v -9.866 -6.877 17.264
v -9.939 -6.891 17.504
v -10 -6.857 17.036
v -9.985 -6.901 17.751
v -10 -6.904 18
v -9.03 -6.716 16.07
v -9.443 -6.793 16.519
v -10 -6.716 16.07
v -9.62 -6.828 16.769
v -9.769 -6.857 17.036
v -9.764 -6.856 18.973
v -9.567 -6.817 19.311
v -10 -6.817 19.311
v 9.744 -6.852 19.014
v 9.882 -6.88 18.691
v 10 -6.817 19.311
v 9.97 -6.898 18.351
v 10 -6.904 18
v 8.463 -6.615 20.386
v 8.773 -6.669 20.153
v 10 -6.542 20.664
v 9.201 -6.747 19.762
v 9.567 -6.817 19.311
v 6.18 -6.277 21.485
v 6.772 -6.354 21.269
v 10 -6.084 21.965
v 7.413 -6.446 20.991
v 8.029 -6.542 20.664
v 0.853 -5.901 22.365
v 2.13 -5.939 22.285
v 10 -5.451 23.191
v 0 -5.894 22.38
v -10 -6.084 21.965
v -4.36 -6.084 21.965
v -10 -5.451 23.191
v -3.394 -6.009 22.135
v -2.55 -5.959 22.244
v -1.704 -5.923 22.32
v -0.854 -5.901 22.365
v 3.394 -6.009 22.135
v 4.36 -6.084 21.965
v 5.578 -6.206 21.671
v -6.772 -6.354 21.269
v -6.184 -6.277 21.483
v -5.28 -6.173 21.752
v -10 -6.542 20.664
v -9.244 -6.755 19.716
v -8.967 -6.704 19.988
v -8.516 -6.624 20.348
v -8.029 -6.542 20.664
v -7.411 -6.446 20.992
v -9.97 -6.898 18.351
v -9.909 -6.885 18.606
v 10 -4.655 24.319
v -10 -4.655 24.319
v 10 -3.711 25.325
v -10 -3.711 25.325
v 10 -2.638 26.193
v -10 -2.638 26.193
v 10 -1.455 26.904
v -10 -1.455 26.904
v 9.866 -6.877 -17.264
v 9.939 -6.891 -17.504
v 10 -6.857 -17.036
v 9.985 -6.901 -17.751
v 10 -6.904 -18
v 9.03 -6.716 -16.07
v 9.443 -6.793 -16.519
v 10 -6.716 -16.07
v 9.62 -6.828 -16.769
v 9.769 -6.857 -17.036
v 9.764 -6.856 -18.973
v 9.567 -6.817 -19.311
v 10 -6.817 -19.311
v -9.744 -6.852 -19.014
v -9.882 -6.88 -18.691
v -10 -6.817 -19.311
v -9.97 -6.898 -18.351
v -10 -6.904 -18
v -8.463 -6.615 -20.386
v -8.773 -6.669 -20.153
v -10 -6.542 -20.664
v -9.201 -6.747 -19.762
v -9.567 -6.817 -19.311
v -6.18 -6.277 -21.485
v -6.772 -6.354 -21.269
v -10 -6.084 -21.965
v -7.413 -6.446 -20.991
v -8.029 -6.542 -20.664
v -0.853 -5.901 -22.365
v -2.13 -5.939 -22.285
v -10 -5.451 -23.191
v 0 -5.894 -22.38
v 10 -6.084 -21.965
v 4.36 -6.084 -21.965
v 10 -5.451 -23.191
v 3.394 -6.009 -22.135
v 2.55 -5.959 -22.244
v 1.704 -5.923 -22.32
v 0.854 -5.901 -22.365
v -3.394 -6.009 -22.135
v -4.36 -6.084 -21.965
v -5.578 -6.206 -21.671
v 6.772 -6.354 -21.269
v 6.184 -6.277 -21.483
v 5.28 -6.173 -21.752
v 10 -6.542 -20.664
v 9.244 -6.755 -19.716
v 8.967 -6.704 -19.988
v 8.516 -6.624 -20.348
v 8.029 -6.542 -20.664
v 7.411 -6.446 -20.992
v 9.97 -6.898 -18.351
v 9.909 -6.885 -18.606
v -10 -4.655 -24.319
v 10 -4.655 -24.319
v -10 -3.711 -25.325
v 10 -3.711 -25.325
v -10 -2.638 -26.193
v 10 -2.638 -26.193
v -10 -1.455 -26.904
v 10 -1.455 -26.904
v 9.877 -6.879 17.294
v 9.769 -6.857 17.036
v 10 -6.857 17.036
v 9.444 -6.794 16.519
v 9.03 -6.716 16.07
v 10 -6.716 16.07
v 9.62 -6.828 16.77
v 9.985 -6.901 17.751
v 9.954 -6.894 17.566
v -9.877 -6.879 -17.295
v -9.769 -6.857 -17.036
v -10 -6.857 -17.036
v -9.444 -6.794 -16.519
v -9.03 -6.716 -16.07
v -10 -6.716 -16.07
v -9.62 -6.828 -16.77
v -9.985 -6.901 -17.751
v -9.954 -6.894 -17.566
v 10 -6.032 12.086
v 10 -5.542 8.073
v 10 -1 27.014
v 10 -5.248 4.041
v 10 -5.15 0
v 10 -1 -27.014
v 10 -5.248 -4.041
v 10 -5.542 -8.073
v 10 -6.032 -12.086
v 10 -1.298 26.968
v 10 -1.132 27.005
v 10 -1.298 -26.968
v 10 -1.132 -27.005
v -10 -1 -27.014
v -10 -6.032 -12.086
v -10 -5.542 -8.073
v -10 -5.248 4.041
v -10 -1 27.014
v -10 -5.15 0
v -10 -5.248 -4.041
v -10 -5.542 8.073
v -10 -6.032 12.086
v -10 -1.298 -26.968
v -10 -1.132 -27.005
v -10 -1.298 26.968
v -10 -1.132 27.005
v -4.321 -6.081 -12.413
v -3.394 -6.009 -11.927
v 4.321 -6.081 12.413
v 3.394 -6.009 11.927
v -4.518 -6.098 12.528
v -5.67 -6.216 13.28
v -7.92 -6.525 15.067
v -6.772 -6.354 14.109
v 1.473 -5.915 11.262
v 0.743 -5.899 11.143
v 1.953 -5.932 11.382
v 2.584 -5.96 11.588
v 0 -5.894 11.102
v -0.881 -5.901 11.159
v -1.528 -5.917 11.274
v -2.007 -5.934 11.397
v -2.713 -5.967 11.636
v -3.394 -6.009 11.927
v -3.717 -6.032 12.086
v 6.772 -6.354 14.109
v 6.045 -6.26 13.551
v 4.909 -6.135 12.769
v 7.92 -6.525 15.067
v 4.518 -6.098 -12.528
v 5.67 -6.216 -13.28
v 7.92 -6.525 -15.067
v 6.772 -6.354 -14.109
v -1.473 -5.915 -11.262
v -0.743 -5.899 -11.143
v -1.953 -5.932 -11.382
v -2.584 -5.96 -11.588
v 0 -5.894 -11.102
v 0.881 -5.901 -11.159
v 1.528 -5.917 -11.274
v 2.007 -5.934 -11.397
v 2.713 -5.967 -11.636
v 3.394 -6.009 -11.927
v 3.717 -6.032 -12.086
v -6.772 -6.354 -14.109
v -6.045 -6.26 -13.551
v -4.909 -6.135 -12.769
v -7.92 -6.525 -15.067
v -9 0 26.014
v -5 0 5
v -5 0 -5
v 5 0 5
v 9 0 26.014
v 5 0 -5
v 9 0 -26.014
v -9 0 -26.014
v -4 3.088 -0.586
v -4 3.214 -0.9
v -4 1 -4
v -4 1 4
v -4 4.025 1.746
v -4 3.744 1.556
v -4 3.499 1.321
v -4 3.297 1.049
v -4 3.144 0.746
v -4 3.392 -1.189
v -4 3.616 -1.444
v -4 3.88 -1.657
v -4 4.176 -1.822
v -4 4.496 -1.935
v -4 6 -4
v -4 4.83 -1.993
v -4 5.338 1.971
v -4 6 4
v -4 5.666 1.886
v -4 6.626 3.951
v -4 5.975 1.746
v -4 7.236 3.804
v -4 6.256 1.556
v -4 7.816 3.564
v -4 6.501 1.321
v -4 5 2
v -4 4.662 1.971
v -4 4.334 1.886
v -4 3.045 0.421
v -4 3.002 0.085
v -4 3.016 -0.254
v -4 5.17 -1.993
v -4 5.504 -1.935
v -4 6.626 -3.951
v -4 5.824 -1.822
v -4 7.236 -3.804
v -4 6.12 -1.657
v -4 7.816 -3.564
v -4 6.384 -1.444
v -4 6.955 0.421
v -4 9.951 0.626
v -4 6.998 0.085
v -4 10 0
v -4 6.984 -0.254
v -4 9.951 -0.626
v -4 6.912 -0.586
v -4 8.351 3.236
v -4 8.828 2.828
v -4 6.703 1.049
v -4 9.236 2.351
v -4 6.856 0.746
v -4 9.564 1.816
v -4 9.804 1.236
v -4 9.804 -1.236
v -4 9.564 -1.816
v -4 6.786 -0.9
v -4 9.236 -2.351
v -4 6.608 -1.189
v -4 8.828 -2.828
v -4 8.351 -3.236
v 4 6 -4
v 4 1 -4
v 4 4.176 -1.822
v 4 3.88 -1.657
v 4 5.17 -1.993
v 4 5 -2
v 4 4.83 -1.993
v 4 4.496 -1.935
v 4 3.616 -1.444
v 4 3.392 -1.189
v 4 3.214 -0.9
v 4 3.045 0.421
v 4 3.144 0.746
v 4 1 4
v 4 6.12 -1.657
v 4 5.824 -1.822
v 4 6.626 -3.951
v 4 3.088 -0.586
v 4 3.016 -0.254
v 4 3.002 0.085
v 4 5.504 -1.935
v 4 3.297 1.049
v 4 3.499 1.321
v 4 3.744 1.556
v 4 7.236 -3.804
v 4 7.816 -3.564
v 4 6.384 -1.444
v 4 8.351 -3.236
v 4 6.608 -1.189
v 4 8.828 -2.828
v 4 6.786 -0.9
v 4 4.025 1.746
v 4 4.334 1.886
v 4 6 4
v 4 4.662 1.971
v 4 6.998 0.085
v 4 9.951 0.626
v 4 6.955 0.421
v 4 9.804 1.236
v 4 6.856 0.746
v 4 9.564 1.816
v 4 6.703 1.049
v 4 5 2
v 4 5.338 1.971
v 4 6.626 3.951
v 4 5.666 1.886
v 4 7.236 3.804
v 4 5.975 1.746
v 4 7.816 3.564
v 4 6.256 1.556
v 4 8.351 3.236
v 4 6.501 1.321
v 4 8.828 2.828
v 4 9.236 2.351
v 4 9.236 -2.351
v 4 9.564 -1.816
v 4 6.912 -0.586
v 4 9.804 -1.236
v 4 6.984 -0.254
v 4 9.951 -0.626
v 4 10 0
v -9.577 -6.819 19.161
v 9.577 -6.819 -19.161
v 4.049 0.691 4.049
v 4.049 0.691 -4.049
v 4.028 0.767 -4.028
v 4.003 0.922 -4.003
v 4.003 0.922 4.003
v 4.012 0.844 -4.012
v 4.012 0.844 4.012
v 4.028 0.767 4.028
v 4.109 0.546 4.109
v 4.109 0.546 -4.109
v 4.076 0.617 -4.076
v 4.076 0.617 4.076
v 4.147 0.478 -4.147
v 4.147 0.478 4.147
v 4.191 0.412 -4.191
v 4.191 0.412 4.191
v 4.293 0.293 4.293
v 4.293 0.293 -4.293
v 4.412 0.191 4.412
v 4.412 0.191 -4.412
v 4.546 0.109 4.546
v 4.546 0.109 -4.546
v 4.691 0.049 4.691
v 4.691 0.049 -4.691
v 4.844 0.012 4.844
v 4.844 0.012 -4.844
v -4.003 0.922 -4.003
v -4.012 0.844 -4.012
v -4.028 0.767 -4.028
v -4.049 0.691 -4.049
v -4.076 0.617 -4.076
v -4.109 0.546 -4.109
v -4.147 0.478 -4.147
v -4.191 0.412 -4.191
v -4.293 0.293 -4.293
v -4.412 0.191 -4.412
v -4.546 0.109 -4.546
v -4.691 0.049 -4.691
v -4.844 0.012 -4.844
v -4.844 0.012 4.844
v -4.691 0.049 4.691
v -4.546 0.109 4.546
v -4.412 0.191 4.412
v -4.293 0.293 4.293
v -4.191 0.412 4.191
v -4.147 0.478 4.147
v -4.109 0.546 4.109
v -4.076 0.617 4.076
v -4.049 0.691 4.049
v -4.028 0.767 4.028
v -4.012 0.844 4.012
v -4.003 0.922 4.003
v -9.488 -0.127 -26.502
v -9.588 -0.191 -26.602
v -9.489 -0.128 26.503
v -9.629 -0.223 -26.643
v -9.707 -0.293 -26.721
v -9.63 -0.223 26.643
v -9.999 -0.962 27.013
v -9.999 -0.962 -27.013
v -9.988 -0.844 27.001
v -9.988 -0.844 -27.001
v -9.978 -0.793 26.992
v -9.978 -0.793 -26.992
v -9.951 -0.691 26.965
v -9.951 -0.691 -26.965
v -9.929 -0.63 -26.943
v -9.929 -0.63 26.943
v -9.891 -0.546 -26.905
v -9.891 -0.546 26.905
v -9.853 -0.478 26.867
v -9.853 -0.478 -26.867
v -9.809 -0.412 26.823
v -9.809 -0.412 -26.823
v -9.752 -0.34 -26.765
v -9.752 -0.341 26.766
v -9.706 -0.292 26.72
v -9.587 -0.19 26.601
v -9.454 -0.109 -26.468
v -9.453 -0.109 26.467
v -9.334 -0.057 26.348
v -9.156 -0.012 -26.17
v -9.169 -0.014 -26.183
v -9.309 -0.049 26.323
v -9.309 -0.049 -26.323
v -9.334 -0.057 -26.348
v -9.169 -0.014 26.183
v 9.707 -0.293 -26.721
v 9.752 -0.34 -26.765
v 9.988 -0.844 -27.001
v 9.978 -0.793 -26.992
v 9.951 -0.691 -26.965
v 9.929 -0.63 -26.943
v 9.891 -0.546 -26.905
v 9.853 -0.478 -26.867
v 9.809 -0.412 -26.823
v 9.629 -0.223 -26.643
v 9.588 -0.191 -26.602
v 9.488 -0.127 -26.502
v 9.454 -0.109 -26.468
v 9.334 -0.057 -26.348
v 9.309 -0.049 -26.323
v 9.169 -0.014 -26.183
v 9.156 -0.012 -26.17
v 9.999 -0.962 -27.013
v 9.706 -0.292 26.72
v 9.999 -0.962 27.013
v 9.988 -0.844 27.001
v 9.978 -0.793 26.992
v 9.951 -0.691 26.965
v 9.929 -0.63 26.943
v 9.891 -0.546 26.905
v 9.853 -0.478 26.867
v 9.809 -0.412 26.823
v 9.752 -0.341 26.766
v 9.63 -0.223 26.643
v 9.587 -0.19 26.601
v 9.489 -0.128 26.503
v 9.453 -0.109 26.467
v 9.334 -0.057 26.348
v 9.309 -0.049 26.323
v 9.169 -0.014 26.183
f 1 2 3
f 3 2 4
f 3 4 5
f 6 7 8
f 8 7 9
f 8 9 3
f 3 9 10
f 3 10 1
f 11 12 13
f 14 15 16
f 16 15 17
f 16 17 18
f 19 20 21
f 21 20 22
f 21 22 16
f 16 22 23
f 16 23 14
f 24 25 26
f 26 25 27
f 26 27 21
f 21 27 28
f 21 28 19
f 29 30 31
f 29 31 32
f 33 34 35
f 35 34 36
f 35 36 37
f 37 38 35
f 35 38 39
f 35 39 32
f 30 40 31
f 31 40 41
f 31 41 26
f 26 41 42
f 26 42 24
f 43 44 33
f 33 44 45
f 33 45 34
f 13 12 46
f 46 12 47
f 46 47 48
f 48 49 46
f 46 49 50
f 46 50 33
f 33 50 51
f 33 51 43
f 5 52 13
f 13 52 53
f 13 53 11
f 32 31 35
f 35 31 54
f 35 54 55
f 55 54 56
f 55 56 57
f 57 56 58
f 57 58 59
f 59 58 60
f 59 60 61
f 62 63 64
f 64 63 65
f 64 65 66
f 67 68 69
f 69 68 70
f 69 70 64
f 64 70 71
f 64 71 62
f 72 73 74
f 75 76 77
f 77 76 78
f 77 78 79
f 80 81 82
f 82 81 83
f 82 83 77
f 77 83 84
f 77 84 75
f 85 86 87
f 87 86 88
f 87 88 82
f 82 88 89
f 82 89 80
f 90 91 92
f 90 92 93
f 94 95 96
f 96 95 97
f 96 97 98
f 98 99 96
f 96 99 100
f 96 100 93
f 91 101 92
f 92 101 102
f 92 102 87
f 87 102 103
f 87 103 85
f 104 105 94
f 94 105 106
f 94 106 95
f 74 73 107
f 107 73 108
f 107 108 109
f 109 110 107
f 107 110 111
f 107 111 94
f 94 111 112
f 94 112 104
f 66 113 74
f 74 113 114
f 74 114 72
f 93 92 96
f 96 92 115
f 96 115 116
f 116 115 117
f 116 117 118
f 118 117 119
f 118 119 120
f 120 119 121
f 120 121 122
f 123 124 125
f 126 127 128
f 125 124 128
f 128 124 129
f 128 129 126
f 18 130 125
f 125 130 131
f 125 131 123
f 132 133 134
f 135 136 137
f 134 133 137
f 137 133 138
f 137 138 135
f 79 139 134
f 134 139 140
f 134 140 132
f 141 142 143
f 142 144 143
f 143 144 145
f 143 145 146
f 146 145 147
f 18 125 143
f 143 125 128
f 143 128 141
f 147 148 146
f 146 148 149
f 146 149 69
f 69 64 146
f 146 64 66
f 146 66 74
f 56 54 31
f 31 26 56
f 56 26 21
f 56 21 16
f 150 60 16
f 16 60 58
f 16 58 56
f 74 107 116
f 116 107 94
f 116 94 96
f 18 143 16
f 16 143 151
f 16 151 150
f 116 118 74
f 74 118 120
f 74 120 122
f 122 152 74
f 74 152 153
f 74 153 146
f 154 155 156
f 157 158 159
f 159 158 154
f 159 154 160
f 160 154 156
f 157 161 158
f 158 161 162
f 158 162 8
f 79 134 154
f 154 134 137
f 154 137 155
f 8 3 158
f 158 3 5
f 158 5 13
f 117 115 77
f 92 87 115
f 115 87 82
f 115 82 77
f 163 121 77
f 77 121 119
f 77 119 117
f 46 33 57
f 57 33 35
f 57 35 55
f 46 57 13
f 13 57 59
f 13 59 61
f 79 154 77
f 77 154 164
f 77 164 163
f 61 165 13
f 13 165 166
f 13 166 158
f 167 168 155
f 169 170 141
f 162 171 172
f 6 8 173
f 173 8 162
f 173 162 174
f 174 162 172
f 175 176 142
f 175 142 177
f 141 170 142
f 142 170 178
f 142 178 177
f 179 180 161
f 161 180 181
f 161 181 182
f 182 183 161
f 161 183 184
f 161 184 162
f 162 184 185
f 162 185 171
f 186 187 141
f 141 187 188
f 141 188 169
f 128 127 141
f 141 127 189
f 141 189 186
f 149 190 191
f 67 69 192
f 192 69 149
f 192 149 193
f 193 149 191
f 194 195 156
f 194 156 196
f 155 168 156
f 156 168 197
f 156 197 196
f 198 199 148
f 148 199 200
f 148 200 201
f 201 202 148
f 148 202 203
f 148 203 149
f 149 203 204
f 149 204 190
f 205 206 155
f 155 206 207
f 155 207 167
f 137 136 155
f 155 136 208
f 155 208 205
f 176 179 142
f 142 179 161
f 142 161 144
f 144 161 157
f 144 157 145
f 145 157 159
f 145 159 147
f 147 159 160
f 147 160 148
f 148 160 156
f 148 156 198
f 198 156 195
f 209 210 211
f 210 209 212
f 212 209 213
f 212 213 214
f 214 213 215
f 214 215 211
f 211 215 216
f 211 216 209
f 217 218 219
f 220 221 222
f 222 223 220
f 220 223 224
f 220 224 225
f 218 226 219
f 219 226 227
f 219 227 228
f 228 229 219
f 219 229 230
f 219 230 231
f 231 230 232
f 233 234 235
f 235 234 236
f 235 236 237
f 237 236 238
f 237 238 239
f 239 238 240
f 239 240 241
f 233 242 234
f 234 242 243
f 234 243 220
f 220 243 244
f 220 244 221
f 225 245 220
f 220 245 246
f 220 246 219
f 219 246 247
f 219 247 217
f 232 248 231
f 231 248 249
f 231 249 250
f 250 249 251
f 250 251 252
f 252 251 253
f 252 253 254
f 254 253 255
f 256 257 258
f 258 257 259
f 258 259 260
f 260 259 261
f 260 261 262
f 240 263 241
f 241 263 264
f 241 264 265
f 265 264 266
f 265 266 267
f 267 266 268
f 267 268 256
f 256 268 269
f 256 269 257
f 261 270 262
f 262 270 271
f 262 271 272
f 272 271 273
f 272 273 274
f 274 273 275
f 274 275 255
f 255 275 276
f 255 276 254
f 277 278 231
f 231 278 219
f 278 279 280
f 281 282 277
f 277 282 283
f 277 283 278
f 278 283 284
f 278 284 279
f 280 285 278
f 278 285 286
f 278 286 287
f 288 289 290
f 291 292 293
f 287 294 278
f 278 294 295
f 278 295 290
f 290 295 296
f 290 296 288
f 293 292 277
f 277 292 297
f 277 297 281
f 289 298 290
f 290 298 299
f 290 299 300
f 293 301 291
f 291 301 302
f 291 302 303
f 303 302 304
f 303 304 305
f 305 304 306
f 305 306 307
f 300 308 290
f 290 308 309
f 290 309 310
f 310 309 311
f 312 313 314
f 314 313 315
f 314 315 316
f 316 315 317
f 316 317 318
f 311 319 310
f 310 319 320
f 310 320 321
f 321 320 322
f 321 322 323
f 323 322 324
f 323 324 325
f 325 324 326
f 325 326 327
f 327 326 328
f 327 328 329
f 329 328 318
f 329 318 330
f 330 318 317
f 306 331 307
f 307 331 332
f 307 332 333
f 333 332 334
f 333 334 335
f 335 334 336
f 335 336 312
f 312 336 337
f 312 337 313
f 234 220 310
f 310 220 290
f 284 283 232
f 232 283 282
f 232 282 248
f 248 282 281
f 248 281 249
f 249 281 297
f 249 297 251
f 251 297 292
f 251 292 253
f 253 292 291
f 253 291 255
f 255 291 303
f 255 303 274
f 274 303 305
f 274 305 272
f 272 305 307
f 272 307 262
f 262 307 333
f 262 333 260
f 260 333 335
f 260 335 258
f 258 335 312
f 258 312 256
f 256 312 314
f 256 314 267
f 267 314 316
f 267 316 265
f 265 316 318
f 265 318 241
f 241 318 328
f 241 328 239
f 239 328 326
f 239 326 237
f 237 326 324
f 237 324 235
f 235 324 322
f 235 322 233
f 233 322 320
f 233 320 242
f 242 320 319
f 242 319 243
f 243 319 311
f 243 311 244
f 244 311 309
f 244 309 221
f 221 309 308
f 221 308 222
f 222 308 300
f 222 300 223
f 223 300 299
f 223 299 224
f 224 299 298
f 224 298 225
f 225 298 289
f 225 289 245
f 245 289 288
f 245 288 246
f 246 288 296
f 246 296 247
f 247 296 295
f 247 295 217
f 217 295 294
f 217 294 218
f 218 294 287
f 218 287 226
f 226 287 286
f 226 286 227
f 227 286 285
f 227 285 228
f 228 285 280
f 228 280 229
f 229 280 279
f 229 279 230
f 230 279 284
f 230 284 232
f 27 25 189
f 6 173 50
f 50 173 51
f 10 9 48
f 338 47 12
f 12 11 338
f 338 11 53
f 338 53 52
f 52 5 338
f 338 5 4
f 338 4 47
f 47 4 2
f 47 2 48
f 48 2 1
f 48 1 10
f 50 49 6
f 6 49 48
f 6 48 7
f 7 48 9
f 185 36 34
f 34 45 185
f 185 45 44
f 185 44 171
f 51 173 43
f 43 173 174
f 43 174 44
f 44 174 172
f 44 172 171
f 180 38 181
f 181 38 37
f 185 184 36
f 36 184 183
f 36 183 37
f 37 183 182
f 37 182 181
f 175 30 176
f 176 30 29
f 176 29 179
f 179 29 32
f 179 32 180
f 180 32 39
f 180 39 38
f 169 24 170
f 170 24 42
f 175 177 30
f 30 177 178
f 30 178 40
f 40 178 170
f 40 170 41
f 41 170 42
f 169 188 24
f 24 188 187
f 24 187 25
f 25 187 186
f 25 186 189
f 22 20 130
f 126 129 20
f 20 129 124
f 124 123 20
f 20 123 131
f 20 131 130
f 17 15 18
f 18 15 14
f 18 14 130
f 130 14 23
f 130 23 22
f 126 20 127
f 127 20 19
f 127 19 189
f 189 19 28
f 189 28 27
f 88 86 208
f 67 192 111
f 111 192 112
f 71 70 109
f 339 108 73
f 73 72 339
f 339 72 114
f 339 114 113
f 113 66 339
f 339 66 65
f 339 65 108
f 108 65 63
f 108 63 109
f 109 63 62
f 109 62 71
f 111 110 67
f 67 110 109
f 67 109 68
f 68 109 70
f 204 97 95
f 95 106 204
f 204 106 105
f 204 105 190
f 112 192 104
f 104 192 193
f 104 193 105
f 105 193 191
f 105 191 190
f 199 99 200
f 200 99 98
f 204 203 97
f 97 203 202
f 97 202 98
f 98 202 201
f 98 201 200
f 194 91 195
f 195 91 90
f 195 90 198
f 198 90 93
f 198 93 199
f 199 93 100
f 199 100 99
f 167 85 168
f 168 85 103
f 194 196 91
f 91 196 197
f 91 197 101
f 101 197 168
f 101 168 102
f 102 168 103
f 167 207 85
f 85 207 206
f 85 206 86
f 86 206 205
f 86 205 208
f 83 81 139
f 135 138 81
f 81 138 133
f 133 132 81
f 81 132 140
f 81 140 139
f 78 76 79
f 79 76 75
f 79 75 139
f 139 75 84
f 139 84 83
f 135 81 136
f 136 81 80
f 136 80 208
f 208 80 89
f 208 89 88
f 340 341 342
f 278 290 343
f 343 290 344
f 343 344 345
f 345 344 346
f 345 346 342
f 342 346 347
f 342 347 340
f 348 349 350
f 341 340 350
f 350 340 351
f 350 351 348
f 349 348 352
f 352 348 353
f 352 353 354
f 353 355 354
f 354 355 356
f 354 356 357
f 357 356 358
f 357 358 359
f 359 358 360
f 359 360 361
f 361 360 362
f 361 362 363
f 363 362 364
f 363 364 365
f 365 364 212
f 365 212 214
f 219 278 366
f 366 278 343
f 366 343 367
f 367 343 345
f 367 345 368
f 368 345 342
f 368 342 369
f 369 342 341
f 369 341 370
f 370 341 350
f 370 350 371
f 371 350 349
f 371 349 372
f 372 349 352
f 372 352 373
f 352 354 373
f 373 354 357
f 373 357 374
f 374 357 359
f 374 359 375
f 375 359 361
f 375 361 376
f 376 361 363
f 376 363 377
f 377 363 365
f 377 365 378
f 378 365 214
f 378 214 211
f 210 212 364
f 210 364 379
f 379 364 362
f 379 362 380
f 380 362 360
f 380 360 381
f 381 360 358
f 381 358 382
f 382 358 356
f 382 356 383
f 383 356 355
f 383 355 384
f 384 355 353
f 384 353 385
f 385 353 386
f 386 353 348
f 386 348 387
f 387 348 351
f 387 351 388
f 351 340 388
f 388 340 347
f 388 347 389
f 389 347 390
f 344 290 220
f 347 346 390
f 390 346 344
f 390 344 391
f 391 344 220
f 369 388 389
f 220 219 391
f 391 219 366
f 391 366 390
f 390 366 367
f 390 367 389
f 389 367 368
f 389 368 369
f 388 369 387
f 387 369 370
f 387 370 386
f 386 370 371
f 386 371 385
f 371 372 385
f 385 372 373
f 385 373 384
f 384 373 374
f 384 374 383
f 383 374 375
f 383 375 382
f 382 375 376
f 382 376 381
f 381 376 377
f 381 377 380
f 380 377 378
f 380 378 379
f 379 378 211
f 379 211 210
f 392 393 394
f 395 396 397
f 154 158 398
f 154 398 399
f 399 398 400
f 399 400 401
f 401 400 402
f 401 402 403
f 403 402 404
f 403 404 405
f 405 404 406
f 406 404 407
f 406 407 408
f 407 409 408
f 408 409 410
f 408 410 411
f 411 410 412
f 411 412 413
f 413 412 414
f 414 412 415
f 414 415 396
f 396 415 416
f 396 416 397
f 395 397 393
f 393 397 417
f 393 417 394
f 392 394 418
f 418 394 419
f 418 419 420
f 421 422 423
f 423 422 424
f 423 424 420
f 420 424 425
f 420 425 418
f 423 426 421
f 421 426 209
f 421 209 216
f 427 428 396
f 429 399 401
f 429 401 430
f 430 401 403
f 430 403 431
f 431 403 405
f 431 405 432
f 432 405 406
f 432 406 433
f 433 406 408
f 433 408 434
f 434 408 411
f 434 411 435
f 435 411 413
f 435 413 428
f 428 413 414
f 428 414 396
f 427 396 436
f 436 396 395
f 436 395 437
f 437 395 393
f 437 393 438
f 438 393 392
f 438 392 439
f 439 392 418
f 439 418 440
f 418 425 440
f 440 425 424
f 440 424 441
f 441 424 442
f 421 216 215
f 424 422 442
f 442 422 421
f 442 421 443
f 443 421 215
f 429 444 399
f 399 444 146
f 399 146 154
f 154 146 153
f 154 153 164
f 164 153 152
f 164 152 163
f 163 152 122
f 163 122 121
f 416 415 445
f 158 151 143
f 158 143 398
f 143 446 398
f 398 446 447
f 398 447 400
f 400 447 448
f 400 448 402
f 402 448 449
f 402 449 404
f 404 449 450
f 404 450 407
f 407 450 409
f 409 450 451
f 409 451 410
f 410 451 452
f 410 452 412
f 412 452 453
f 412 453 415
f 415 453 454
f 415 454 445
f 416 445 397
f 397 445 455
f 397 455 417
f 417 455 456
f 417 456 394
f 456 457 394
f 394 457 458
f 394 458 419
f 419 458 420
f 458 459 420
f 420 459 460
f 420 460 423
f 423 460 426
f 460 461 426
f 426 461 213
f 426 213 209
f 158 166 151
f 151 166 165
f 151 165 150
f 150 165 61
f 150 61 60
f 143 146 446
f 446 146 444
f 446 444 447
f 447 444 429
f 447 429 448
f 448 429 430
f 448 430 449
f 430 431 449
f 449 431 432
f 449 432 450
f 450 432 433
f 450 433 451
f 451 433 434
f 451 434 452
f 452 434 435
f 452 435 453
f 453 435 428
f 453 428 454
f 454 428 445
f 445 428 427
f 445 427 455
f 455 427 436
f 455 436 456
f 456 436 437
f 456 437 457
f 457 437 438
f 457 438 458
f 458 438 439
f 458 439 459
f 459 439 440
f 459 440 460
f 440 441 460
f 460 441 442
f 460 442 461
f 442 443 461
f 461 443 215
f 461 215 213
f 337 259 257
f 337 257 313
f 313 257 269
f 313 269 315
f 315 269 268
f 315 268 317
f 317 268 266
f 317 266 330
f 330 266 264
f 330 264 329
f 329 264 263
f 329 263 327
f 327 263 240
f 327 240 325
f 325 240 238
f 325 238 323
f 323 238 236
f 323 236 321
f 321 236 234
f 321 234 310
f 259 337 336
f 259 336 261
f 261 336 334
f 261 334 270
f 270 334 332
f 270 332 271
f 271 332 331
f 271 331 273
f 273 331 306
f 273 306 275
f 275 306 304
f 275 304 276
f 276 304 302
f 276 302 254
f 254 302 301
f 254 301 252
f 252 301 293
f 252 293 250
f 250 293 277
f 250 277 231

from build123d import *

# Parameters (mm, degrees)
SALIENTE_EXTRUIR1_DEPTH    = 10
CROQUIS2_OUTSIDE_W         = 34.364
CROQUIS2_OUTSIDE_H         = 70.364
CROQUIS2_OUTSIDE_W_2       = 8
CROQUIS2_OUTSIDE_H_2       = 8
CORTAR_EXTRUIR2_DEPTH      = 10
CROQUIS3_R                 = 2
CORTAR_EXTRUIR3_DEPTH      = 33.445689749
CORTAR_EXTRUIR4_DEPTH      = 31.9309357
CORTAR_EXTRUIR4_DEPTH_BACK = 31.9309357
CROQUIS6_R                 = 50
REDONDEO1_R                = 1
REDONDEO3_R                = 4


with BuildPart() as part:
    # Croquis1 → Saliente-Extruir1 (new, symmetric)
    with BuildSketch(Plane(origin=(0, 0, 0), x_dir=(0, 0, -1), z_dir=(1, 0, 0))):
        with BuildLine():
            Line((-28, 10), (28, 10))
            Line((28, 10), (28, 3.096227789))
            ThreePointArc((28, 3.096227789), (24.352048797, -4.627209016), (16.069704783, -6.715701704))
            ThreePointArc((16.069704783, -6.715701704), (0, -5.150015015), (-16.069704783, -6.715701704))
            ThreePointArc((-16.069704783, -6.715701704), (-24.352048797, -4.627209016), (-28, 3.096227789))
            Line((-28, 3.096227789), (-28, 10))
        make_face()
    extrude(amount=SALIENTE_EXTRUIR1_DEPTH, both=True)

    # Croquis2 outside → Cortar-Extruir2 (cut)
    with BuildSketch(Plane(origin=(0, 10, 0), x_dir=(1, 0, 0), z_dir=(0, 1, 0))):
        Rectangle(CROQUIS2_OUTSIDE_W, CROQUIS2_OUTSIDE_H)
        Rectangle(CROQUIS2_OUTSIDE_W_2, CROQUIS2_OUTSIDE_H_2, mode=Mode.SUBTRACT)
    extrude(amount=-CORTAR_EXTRUIR2_DEPTH, mode=Mode.SUBTRACT)

    # Croquis3 → Cortar-Extruir3 (cut, through all)
    with BuildSketch(Plane.ZY.offset(4)):
        with Locations((0, 5)):
            Circle(CROQUIS3_R)
    extrude(amount=-CORTAR_EXTRUIR3_DEPTH, mode=Mode.SUBTRACT)

    # Croquis6 → Cortar-Extruir4 (cut, two sides: drawn at the far end of the back side and taken through both)
    with BuildSketch(Plane.XY.offset(-CORTAR_EXTRUIR4_DEPTH_BACK)):
        with Locations((0, -55.893567066)):
            Circle(CROQUIS6_R)
    extrude(amount=CORTAR_EXTRUIR4_DEPTH + CORTAR_EXTRUIR4_DEPTH_BACK, mode=Mode.SUBTRACT)

    # Redondeo1
    redondeo1_edges = [part.edges().sort_by_distance(p)[0] for p in [
        (-10, 0, 0),
        (0, 0, -27.508594716),
        (0, 0, 27.508594716),
        (10, 0, 0),
        (0, 0, -4),
        (-4, 0, 0),
        (0, 0, 4),
        (4, 0, 0),
    ]]
    fillet(redondeo1_edges, radius=REDONDEO1_R)

    # Redondeo3
    redondeo3_edges = [part.edges().sort_by_distance(p)[0] for p in [
        (0, 10, -4),
        (0, 10, 4),
    ]]
    fillet(redondeo3_edges, radius=REDONDEO3_R - 0.0001)  # a hair under: the kernel refuses the full size


solid = part.part
